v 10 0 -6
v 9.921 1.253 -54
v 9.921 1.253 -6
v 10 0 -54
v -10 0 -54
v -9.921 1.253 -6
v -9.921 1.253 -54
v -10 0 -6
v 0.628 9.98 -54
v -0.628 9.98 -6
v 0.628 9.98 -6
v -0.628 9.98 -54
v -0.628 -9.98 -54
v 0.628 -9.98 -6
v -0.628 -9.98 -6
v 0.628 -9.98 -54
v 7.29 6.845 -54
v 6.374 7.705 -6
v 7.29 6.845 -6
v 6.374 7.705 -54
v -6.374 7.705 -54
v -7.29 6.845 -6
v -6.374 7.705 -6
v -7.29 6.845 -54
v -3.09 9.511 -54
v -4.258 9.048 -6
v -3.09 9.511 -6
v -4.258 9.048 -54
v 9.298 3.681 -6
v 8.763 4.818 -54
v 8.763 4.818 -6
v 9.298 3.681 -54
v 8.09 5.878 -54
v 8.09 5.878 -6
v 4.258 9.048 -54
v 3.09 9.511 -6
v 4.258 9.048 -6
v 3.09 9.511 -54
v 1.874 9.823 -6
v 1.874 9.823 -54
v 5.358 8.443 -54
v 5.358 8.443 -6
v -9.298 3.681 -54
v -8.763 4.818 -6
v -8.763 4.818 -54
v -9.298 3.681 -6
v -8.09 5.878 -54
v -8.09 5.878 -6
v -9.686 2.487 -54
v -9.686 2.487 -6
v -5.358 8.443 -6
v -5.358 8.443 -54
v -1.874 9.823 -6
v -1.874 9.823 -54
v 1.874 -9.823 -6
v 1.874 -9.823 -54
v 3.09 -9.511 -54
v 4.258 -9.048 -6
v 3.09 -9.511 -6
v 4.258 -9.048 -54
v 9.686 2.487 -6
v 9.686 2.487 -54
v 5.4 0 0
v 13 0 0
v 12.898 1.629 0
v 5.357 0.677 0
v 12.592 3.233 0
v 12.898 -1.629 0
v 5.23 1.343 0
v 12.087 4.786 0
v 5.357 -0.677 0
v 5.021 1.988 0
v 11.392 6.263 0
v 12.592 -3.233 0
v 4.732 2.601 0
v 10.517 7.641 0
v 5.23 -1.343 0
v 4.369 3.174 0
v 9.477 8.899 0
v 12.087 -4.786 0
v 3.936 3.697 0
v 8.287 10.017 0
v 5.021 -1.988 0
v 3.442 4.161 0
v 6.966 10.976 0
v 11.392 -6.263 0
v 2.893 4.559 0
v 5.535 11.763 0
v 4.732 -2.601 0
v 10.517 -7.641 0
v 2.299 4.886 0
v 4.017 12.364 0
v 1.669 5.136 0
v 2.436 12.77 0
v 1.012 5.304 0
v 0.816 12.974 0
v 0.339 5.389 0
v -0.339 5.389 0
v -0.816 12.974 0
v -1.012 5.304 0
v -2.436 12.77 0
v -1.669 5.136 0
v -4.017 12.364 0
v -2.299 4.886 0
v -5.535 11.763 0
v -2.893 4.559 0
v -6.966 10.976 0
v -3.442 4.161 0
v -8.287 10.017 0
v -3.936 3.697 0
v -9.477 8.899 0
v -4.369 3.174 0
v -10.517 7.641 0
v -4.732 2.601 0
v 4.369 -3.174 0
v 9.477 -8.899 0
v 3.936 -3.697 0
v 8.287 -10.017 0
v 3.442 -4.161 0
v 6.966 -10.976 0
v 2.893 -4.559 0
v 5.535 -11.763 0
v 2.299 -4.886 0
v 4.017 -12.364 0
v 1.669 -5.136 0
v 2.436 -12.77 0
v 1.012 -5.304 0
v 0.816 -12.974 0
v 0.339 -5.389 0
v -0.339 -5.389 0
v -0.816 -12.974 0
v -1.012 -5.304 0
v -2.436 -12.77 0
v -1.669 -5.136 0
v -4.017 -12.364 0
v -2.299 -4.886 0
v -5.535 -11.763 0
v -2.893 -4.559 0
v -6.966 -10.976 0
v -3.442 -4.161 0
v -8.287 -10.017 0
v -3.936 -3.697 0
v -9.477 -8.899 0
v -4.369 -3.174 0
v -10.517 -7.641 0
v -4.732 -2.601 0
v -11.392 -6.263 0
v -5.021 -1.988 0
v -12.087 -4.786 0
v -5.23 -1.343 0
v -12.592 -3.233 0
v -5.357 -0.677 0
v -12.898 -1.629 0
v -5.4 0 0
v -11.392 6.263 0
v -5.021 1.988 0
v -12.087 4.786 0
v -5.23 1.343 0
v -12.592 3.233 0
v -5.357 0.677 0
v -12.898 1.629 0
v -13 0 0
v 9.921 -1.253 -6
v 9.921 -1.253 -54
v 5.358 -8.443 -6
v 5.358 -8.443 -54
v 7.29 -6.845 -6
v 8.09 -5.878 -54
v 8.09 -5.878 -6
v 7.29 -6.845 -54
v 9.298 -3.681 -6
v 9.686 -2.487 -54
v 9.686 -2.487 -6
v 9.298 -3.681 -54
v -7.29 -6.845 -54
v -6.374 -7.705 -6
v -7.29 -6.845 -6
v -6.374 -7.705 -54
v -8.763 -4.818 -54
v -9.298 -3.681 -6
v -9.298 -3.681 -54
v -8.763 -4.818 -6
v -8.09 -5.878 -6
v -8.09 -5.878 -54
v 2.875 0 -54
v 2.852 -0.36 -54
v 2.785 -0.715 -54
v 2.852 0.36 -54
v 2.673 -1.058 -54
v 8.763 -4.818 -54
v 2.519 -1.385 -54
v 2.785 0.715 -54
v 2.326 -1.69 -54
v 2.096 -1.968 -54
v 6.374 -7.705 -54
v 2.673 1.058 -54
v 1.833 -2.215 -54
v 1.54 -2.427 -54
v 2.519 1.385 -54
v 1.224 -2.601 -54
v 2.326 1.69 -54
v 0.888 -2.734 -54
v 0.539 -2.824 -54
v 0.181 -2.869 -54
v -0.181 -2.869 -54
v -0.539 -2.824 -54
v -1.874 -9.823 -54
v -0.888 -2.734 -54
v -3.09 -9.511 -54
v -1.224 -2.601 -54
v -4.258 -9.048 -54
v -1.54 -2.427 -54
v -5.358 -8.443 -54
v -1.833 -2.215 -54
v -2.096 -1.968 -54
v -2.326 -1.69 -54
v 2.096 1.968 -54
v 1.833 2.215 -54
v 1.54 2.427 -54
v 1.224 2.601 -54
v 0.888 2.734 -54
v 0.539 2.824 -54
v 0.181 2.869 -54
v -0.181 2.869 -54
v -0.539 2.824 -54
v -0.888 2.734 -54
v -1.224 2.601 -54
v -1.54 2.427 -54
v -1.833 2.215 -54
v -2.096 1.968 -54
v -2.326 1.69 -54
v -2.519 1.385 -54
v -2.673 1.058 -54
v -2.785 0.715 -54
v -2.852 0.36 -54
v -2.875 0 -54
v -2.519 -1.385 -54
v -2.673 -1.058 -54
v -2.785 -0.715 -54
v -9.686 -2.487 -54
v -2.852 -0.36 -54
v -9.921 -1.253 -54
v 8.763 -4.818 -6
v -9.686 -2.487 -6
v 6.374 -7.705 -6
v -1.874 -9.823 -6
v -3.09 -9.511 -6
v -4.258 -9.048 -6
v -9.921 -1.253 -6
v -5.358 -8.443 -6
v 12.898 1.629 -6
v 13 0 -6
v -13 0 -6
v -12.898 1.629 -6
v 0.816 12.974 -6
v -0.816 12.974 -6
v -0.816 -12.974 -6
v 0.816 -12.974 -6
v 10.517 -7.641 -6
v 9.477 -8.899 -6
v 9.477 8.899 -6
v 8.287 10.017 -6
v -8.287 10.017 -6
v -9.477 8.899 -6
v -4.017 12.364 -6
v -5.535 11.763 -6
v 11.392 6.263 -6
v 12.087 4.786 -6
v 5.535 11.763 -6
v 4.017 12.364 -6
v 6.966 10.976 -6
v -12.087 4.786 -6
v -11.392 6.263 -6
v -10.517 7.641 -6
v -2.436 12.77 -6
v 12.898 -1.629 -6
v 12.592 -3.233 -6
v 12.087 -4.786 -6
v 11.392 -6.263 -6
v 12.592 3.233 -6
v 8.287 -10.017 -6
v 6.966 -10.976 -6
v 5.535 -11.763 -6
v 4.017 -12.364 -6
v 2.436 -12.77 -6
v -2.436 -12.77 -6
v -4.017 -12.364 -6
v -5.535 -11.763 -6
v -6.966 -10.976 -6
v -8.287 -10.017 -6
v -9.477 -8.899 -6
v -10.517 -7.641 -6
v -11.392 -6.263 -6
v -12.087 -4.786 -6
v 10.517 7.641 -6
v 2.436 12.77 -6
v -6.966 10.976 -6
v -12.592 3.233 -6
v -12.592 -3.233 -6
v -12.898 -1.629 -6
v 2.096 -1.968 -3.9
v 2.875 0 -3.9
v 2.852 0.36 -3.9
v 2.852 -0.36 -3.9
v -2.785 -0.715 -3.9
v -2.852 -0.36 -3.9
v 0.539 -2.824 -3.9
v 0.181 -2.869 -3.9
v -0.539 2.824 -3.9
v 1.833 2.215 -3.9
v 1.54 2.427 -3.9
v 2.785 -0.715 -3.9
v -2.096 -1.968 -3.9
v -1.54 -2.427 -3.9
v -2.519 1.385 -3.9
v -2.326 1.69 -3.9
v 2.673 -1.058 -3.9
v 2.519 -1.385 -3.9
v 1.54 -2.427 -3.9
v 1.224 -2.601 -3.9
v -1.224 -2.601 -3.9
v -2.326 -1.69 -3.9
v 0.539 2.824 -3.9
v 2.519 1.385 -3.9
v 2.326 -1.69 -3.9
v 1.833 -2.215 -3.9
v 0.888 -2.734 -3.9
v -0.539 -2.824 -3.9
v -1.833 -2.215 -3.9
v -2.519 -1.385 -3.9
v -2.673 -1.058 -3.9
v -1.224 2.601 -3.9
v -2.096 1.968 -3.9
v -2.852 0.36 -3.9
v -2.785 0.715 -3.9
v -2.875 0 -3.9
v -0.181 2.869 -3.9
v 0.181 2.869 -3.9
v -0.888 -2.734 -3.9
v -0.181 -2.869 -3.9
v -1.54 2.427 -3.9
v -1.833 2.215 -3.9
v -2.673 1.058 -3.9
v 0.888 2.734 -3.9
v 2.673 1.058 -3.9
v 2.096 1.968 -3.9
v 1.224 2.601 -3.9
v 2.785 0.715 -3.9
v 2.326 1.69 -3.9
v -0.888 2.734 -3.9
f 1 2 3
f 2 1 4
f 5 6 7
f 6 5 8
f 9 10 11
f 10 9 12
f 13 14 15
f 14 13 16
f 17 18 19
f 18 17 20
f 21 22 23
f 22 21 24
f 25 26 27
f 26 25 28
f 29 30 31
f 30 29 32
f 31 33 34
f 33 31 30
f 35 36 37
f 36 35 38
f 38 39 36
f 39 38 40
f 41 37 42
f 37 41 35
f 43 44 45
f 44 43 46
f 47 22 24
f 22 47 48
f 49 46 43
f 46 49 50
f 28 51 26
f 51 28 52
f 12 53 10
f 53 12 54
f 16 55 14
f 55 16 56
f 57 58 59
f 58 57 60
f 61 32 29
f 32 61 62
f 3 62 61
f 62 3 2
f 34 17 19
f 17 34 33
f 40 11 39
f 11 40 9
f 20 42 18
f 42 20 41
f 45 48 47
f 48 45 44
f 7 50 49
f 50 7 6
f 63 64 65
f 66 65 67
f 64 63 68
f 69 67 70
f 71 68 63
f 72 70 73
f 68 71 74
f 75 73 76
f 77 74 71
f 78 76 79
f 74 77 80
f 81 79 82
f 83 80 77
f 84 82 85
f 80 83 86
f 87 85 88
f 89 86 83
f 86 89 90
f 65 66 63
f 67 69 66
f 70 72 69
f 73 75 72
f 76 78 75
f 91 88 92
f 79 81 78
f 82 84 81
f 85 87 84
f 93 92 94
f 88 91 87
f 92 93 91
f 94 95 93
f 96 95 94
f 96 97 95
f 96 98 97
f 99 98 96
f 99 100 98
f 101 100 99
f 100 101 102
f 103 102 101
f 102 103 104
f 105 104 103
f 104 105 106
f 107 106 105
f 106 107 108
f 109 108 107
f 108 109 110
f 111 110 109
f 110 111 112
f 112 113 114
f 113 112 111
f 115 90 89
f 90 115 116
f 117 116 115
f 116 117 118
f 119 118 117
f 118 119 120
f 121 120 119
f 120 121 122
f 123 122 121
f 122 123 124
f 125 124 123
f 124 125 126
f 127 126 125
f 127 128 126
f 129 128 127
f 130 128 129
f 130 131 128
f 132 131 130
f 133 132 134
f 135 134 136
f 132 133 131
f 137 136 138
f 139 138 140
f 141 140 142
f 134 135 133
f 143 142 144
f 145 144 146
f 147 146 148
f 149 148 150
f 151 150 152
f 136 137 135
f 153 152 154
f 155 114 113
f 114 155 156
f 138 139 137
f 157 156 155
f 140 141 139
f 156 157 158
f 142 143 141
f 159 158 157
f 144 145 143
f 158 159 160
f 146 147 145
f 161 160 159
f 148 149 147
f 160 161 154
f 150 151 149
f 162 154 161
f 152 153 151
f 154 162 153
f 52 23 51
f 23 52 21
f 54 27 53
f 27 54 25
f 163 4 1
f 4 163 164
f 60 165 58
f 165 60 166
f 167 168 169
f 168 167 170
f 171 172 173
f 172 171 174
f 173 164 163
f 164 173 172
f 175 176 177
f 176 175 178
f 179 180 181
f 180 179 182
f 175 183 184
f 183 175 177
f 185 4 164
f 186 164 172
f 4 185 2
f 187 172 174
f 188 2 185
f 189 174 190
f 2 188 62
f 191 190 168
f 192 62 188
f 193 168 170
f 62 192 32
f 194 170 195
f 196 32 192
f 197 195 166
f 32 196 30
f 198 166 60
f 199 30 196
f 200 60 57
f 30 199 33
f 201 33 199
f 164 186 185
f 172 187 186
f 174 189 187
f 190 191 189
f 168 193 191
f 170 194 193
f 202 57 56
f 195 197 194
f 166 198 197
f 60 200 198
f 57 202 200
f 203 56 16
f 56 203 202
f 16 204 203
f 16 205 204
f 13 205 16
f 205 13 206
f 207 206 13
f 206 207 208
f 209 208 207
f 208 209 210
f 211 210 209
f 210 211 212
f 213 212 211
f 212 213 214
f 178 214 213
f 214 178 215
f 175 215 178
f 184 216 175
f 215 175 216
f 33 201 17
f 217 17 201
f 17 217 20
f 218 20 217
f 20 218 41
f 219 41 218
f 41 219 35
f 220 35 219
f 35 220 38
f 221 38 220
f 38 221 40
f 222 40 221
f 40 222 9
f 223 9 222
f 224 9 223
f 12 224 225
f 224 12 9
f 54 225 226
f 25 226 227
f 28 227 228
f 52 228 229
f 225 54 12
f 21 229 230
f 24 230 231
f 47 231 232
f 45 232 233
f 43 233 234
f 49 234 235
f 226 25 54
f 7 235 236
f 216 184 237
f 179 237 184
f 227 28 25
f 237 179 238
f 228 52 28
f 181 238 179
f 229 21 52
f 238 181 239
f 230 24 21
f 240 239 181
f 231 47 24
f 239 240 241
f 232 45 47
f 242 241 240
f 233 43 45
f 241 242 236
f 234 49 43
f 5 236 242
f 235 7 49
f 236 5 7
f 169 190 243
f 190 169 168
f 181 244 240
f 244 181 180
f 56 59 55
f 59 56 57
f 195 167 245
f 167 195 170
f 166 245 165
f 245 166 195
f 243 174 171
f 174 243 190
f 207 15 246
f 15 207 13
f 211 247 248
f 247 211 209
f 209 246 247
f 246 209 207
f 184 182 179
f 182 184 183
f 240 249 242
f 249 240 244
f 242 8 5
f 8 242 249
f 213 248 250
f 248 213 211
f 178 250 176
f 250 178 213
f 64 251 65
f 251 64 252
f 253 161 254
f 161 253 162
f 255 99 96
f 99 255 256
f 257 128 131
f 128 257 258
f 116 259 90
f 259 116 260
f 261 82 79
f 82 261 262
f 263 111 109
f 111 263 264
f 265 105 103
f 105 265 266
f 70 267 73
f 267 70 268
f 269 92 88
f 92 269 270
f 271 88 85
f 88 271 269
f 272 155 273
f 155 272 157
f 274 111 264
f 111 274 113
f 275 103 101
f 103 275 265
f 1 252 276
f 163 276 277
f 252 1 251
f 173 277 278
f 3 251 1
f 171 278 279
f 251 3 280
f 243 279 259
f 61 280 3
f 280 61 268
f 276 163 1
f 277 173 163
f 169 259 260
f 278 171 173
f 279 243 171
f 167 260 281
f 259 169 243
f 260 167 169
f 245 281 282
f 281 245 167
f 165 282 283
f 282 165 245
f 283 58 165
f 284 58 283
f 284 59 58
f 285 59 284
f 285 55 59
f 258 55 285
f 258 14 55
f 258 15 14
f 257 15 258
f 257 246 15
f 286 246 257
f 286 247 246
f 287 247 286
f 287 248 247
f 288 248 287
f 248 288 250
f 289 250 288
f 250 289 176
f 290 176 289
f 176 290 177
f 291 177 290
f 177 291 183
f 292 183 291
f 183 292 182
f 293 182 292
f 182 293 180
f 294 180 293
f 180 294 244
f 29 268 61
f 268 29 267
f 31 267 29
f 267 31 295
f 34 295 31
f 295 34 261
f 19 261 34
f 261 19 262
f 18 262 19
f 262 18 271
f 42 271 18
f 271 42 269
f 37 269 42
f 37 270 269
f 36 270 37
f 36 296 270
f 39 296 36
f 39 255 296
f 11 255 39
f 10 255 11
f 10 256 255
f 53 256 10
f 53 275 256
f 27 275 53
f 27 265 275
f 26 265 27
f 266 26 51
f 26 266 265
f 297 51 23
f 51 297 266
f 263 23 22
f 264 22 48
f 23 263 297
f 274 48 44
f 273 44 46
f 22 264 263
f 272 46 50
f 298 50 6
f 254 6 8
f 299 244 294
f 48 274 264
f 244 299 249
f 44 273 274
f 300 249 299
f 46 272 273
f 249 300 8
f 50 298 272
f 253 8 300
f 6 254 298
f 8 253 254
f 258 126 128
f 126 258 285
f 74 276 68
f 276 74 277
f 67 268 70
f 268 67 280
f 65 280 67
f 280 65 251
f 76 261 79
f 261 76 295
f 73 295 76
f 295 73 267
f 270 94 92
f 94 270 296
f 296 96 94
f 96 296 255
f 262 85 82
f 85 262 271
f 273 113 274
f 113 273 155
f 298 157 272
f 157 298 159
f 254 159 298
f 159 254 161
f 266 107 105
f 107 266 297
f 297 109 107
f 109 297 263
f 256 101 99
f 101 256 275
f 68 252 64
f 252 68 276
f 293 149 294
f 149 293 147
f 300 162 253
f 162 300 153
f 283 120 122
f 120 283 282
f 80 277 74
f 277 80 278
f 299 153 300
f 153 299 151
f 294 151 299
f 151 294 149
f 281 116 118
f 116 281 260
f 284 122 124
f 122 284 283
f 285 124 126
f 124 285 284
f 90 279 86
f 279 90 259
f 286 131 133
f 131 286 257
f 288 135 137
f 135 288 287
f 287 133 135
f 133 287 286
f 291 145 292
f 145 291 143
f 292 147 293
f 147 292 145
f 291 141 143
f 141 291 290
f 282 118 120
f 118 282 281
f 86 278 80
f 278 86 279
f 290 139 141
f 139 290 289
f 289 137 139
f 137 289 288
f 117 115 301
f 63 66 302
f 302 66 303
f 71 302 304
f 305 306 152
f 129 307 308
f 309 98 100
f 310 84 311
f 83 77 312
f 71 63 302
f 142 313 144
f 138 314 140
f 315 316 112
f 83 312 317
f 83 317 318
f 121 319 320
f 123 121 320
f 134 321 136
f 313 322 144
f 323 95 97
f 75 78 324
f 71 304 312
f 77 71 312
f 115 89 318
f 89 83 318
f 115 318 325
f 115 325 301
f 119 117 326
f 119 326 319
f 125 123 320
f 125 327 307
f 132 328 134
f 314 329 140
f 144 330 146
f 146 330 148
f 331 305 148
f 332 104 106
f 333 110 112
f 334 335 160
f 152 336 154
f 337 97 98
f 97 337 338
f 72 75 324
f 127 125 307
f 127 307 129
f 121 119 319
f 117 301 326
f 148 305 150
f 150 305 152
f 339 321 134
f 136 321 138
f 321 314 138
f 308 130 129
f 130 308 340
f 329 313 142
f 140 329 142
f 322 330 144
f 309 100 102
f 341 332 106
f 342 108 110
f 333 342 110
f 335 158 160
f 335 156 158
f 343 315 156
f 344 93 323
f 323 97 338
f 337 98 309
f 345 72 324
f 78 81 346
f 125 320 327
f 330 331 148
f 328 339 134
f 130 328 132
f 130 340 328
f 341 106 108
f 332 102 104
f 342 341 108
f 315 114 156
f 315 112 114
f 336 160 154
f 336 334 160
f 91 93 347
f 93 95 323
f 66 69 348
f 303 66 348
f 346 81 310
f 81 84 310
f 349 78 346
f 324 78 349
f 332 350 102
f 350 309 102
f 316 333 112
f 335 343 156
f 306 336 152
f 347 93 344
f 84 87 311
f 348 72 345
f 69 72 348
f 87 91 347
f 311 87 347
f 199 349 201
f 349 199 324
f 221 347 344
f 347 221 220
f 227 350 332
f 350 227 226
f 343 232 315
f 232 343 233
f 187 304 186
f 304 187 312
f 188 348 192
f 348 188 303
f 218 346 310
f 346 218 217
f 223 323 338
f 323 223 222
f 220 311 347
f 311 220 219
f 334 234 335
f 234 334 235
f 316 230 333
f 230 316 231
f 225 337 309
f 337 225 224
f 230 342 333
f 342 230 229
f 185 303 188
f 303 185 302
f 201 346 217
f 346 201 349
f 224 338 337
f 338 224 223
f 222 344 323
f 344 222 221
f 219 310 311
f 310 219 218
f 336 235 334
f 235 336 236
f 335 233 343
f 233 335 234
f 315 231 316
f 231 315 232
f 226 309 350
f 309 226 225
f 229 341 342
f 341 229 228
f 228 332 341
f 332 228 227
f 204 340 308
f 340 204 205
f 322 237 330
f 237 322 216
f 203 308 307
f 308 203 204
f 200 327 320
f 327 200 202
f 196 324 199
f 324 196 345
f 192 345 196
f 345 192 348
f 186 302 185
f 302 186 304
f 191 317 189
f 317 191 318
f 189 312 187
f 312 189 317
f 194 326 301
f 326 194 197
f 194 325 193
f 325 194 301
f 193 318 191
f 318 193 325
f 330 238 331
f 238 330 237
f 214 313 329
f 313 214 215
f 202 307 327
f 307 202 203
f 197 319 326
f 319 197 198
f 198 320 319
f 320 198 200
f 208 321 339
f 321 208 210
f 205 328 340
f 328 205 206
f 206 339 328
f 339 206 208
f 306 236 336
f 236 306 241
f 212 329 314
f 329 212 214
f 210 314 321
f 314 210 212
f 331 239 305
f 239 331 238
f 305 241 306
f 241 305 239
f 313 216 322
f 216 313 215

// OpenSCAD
$fn = 50;


difference() {
	union() {
		translate(v = [0, 0, -54.0000000000]) {
			cylinder(h = 54, r = 10.0000000000);
		}
		translate(v = [0, 0, -6.0000000000]) {
			cylinder(h = 6, r = 13.0000000000);
		}
	}
	union() {
		translate(v = [0, 0, 0]) {
			rotate(a = [0, 0, 0]) {
				difference() {
					union() {
						#translate(v = [0, 0, -54.0000000000]) {
							cylinder(h = 54, r = 2.6000000000);
						}
						#translate(v = [0, 0, -3.9000000000]) {
							cylinder(h = 3.9000000000, r = 10.0000000000, r1 = 2.8750000000, r2 = 5.4000000000);
						}
						#translate(v = [0, 0, -54.0000000000]) {
							cylinder(h = 54, r = 2.8750000000);
						}
						#translate(v = [0, 0, -54.0000000000]) {
							cylinder(h = 54, r = 2.6000000000);
						}
					}
					union();
				}
			}
		}
	}
}
